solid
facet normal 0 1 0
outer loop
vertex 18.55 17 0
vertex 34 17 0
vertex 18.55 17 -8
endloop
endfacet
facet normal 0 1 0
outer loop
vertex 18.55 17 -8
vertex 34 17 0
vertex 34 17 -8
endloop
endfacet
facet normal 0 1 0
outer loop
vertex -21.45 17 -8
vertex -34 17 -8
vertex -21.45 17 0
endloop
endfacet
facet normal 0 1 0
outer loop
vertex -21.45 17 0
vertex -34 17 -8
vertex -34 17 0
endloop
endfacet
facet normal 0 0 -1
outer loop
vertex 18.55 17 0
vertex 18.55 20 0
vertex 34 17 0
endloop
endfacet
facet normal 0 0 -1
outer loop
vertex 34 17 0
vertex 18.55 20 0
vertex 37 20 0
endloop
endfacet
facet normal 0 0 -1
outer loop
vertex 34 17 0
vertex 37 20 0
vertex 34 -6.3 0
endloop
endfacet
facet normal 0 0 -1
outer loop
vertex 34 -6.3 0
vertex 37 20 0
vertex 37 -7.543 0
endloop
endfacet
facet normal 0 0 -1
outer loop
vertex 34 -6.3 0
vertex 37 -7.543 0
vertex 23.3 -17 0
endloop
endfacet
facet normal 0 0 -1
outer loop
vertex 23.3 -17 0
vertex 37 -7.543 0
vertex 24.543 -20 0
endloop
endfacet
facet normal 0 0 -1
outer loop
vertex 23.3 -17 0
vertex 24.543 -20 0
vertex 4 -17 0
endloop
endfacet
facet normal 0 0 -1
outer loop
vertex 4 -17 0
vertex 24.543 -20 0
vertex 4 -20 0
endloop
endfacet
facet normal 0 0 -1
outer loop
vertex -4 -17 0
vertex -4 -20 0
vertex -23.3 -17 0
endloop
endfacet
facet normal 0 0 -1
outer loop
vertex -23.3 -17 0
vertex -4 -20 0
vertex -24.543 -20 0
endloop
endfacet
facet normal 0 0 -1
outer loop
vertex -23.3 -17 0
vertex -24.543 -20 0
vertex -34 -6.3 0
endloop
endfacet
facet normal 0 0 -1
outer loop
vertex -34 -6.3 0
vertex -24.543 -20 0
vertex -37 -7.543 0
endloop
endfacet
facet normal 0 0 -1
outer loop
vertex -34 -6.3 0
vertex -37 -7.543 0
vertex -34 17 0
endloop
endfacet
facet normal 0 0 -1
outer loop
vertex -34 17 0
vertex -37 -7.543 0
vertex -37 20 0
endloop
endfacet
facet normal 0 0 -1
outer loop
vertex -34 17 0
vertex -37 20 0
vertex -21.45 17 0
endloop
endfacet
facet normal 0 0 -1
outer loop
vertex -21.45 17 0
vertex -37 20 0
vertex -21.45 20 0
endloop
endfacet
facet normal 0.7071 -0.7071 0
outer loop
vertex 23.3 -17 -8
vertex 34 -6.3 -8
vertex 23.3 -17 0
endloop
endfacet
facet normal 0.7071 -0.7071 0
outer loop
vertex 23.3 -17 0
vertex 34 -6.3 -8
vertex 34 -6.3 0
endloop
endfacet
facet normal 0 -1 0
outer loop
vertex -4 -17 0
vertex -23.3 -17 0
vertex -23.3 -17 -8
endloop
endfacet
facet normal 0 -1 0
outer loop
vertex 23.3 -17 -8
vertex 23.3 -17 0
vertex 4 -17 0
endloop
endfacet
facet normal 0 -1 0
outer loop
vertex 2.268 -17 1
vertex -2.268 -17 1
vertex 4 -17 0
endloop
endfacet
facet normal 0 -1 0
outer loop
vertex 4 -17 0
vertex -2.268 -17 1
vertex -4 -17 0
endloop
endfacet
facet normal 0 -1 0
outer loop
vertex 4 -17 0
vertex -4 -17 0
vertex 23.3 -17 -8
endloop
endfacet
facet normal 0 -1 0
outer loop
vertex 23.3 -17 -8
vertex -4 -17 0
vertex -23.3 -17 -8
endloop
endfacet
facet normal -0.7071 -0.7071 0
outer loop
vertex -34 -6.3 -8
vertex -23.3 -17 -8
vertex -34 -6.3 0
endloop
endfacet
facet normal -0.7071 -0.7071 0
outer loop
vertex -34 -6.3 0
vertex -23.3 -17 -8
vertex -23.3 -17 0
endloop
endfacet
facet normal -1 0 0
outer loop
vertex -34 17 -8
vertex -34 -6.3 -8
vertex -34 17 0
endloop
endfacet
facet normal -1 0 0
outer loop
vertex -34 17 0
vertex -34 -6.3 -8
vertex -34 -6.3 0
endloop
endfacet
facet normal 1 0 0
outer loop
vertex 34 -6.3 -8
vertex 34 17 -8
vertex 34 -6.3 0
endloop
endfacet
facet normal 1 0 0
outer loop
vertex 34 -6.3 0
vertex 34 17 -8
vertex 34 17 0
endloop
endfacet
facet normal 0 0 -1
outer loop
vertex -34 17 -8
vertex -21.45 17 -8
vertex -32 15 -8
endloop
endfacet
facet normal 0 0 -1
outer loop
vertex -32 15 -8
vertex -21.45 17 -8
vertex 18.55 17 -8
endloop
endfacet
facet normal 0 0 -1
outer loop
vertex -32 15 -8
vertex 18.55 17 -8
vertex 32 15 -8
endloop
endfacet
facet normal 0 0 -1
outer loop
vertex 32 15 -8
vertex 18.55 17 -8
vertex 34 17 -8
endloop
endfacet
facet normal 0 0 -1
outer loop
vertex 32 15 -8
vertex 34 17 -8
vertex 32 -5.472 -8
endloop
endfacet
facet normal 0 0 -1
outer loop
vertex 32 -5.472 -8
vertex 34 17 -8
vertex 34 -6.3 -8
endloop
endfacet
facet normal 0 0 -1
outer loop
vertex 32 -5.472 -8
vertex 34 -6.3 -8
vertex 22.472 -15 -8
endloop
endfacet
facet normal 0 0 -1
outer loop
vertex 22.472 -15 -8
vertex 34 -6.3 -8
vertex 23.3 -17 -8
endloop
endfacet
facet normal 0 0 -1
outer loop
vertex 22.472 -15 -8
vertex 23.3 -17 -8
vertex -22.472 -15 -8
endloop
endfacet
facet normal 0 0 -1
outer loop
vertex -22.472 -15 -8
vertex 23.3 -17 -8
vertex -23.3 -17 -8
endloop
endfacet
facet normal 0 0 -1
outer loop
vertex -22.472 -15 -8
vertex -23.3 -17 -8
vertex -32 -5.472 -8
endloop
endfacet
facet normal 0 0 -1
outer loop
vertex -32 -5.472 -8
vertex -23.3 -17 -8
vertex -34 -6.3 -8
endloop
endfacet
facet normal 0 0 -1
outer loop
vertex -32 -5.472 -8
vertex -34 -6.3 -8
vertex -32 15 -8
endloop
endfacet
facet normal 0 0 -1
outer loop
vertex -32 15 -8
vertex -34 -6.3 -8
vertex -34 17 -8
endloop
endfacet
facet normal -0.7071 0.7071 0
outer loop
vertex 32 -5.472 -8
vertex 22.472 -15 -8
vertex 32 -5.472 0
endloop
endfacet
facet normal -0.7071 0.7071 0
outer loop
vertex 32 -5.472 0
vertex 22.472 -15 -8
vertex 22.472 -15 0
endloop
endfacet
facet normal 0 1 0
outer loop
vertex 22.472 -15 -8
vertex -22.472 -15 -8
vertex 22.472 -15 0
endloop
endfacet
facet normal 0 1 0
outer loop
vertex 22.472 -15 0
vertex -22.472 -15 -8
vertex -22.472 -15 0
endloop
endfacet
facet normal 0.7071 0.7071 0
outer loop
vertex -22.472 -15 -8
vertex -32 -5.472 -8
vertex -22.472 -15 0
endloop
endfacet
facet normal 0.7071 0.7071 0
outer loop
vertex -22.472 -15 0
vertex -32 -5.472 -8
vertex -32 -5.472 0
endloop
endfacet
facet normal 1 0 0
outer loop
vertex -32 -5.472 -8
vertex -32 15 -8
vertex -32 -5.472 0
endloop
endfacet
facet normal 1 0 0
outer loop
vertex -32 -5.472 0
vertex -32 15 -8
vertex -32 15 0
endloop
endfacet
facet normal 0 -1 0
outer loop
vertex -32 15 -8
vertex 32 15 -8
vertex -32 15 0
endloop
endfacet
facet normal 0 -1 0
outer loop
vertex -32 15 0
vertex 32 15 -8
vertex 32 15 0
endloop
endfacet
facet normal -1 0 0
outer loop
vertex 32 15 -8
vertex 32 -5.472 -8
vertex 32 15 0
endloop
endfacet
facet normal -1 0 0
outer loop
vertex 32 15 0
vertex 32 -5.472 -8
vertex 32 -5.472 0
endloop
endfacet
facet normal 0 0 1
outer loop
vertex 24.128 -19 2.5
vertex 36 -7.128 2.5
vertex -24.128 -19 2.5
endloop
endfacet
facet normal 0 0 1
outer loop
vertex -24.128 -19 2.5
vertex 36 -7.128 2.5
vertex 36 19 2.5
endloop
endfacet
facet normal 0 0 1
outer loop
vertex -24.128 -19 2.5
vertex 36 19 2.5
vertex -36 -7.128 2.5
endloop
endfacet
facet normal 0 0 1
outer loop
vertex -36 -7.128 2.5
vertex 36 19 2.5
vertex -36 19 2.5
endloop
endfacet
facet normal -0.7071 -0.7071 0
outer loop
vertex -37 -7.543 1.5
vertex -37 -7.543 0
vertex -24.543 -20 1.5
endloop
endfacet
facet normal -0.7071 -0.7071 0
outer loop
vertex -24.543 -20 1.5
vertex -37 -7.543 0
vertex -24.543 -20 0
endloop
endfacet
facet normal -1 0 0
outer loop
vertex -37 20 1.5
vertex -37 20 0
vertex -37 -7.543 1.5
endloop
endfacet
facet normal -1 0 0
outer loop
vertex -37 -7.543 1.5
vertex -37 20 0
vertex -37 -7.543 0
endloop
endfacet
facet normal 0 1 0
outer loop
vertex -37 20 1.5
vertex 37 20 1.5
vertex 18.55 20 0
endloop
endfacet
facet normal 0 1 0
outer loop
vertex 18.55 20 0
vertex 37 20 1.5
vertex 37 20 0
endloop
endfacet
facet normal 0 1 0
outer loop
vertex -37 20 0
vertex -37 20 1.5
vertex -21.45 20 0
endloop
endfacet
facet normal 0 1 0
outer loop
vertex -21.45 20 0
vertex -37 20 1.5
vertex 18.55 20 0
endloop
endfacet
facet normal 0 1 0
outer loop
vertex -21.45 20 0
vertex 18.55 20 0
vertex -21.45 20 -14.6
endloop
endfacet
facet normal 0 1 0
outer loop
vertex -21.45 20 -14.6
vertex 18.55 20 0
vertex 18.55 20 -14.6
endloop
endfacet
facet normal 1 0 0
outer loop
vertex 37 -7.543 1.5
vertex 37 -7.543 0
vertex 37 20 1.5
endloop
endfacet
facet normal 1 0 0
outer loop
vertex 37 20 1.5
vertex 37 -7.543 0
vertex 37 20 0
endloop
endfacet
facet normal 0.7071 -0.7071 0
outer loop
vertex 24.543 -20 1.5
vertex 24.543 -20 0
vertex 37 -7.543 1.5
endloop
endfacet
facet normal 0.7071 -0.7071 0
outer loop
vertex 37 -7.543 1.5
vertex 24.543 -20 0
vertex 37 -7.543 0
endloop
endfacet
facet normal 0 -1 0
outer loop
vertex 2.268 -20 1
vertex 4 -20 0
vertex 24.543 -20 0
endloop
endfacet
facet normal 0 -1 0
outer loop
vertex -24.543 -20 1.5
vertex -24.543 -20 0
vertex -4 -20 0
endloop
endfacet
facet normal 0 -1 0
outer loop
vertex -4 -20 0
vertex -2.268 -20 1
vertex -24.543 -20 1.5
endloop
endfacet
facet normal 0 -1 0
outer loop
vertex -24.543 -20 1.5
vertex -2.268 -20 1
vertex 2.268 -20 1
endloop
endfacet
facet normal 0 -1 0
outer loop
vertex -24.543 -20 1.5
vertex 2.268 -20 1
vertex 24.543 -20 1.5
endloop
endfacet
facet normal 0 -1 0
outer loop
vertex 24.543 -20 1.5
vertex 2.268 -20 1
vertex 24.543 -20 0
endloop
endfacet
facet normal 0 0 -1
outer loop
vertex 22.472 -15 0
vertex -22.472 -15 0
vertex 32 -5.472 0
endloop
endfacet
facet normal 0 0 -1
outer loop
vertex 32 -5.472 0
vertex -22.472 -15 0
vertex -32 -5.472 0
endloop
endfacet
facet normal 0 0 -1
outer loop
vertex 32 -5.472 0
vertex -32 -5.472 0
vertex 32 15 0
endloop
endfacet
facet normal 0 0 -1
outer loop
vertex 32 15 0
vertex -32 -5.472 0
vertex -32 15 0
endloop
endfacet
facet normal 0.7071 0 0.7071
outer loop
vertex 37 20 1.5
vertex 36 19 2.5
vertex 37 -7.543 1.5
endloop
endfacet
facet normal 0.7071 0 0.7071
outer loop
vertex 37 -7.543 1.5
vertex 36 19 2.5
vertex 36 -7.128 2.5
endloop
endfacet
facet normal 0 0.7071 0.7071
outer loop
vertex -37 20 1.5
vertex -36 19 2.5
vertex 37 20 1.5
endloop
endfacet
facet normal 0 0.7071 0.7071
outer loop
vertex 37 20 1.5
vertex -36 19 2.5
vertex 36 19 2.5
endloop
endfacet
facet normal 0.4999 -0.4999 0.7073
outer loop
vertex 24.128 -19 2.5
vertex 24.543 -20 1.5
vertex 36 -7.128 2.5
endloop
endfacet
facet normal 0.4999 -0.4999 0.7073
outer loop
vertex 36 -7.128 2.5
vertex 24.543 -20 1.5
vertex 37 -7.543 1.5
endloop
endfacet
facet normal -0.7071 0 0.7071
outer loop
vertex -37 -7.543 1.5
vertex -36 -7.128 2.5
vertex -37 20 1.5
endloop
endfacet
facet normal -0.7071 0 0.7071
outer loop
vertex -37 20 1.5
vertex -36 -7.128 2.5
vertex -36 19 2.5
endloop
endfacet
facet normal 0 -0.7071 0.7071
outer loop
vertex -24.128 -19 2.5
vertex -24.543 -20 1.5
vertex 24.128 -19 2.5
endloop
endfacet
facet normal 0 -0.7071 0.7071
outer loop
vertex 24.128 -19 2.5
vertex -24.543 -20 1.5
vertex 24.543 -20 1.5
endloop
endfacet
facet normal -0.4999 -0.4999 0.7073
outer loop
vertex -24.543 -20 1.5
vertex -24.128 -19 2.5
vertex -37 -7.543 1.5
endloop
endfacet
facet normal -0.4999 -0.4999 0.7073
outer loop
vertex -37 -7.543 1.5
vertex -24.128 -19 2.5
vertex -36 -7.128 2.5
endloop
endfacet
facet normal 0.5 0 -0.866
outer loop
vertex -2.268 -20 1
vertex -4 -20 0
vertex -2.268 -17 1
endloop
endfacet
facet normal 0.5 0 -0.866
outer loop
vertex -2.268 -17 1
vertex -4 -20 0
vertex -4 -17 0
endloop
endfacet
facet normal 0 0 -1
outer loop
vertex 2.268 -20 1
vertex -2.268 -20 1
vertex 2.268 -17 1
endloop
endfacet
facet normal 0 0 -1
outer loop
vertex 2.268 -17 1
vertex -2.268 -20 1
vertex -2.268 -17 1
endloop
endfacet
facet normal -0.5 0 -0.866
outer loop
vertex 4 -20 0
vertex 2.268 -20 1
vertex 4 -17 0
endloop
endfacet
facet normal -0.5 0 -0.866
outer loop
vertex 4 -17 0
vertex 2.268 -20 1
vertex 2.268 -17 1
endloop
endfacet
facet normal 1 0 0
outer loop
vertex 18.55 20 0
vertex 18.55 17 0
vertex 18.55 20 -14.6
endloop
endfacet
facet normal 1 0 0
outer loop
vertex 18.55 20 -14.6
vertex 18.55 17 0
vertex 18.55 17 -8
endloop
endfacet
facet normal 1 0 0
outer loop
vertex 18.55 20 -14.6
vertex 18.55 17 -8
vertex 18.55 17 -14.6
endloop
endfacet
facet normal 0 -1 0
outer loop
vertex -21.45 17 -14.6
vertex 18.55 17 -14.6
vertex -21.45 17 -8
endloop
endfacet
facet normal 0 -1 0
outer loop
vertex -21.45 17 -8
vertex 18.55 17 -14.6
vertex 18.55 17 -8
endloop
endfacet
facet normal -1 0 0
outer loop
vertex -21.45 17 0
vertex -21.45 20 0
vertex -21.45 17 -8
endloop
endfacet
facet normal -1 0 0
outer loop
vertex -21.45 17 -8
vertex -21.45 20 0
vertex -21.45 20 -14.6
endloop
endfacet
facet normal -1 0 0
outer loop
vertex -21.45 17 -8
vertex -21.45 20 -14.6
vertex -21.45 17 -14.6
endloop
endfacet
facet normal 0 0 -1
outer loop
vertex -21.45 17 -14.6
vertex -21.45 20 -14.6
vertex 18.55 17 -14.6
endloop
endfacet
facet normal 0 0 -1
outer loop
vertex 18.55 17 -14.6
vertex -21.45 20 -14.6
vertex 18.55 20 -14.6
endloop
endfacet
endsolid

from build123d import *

# Parameters (mm, degrees)
PRESS_FIT_WALL_EXTRUDE_DEPTH = 8
MAIN_LID_EXTRUDE_DEPTH       = 2.5
MAIN_LID_CHAMFER_SIZE        = 1
MAIN_LID_TAB_CUT_DEPTH       = 3
SKETCH5_W                    = 40
SKETCH5_H                    = 3
SERVO_WALL_EXTRUDE_DEPTH     = 14.6


with BuildPart() as part:
    # Sketch2 → Press Fit Wall Extrude (new body)
    with BuildSketch(Plane.XY):
        Polygon((34, -6.3), (34, 17), (-34, 17), (-34, -6.3), (-23.3, -17), (23.3, -17), align=None)
        Polygon((32, -5.471572875), (32, 15), (-32, 15), (-32, -5.471572875), (-22.471572875, -15), (22.471572875, -15), align=None, mode=Mode.SUBTRACT)
    extrude(amount=-PRESS_FIT_WALL_EXTRUDE_DEPTH)

    # Sketch3 → Main Lid Extrude (add)
    with BuildSketch(Plane.XY):
        Polygon((24.542640687, -20), (37, -7.542640687), (37, 20), (-37, 20), (-37, -7.542640687), (-24.542640687, -20), align=None)
    extrude(amount=MAIN_LID_EXTRUDE_DEPTH)

    # Main Lid Chamfer
    main_lid_chamfer_edges = [part.edges().sort_by_distance(p)[0] for p in [
        (0, -20, 2.5),
        (30.771320344, -13.771320344, 2.5),
        (37, 6.228679656, 2.5),
        (0, 20, 2.5),
        (-37, 6.228679656, 2.5),
        (-30.771320344, -13.771320344, 2.5),
    ]]
    chamfer(main_lid_chamfer_edges, length=MAIN_LID_CHAMFER_SIZE)

    # Sketch4 → Main Lid Tab Cut (cut)
    with BuildSketch(Plane.XZ.offset(20)):
        Polygon((-4, 0), (4, 0), (2.267949192, 1), (-2.267949192, 1), align=None)
    extrude(amount=-MAIN_LID_TAB_CUT_DEPTH, mode=Mode.SUBTRACT)

    # Sketch5 → Servo Wall Extrude (add)
    with BuildSketch(Plane(origin=(0, 0, 0), x_dir=(-1, 0, 0), z_dir=(0, 0, -1))):
        with Locations((1.45, 18.5)):
            Rectangle(SKETCH5_W, SKETCH5_H)
    extrude(amount=SERVO_WALL_EXTRUDE_DEPTH)


solid = part.part
